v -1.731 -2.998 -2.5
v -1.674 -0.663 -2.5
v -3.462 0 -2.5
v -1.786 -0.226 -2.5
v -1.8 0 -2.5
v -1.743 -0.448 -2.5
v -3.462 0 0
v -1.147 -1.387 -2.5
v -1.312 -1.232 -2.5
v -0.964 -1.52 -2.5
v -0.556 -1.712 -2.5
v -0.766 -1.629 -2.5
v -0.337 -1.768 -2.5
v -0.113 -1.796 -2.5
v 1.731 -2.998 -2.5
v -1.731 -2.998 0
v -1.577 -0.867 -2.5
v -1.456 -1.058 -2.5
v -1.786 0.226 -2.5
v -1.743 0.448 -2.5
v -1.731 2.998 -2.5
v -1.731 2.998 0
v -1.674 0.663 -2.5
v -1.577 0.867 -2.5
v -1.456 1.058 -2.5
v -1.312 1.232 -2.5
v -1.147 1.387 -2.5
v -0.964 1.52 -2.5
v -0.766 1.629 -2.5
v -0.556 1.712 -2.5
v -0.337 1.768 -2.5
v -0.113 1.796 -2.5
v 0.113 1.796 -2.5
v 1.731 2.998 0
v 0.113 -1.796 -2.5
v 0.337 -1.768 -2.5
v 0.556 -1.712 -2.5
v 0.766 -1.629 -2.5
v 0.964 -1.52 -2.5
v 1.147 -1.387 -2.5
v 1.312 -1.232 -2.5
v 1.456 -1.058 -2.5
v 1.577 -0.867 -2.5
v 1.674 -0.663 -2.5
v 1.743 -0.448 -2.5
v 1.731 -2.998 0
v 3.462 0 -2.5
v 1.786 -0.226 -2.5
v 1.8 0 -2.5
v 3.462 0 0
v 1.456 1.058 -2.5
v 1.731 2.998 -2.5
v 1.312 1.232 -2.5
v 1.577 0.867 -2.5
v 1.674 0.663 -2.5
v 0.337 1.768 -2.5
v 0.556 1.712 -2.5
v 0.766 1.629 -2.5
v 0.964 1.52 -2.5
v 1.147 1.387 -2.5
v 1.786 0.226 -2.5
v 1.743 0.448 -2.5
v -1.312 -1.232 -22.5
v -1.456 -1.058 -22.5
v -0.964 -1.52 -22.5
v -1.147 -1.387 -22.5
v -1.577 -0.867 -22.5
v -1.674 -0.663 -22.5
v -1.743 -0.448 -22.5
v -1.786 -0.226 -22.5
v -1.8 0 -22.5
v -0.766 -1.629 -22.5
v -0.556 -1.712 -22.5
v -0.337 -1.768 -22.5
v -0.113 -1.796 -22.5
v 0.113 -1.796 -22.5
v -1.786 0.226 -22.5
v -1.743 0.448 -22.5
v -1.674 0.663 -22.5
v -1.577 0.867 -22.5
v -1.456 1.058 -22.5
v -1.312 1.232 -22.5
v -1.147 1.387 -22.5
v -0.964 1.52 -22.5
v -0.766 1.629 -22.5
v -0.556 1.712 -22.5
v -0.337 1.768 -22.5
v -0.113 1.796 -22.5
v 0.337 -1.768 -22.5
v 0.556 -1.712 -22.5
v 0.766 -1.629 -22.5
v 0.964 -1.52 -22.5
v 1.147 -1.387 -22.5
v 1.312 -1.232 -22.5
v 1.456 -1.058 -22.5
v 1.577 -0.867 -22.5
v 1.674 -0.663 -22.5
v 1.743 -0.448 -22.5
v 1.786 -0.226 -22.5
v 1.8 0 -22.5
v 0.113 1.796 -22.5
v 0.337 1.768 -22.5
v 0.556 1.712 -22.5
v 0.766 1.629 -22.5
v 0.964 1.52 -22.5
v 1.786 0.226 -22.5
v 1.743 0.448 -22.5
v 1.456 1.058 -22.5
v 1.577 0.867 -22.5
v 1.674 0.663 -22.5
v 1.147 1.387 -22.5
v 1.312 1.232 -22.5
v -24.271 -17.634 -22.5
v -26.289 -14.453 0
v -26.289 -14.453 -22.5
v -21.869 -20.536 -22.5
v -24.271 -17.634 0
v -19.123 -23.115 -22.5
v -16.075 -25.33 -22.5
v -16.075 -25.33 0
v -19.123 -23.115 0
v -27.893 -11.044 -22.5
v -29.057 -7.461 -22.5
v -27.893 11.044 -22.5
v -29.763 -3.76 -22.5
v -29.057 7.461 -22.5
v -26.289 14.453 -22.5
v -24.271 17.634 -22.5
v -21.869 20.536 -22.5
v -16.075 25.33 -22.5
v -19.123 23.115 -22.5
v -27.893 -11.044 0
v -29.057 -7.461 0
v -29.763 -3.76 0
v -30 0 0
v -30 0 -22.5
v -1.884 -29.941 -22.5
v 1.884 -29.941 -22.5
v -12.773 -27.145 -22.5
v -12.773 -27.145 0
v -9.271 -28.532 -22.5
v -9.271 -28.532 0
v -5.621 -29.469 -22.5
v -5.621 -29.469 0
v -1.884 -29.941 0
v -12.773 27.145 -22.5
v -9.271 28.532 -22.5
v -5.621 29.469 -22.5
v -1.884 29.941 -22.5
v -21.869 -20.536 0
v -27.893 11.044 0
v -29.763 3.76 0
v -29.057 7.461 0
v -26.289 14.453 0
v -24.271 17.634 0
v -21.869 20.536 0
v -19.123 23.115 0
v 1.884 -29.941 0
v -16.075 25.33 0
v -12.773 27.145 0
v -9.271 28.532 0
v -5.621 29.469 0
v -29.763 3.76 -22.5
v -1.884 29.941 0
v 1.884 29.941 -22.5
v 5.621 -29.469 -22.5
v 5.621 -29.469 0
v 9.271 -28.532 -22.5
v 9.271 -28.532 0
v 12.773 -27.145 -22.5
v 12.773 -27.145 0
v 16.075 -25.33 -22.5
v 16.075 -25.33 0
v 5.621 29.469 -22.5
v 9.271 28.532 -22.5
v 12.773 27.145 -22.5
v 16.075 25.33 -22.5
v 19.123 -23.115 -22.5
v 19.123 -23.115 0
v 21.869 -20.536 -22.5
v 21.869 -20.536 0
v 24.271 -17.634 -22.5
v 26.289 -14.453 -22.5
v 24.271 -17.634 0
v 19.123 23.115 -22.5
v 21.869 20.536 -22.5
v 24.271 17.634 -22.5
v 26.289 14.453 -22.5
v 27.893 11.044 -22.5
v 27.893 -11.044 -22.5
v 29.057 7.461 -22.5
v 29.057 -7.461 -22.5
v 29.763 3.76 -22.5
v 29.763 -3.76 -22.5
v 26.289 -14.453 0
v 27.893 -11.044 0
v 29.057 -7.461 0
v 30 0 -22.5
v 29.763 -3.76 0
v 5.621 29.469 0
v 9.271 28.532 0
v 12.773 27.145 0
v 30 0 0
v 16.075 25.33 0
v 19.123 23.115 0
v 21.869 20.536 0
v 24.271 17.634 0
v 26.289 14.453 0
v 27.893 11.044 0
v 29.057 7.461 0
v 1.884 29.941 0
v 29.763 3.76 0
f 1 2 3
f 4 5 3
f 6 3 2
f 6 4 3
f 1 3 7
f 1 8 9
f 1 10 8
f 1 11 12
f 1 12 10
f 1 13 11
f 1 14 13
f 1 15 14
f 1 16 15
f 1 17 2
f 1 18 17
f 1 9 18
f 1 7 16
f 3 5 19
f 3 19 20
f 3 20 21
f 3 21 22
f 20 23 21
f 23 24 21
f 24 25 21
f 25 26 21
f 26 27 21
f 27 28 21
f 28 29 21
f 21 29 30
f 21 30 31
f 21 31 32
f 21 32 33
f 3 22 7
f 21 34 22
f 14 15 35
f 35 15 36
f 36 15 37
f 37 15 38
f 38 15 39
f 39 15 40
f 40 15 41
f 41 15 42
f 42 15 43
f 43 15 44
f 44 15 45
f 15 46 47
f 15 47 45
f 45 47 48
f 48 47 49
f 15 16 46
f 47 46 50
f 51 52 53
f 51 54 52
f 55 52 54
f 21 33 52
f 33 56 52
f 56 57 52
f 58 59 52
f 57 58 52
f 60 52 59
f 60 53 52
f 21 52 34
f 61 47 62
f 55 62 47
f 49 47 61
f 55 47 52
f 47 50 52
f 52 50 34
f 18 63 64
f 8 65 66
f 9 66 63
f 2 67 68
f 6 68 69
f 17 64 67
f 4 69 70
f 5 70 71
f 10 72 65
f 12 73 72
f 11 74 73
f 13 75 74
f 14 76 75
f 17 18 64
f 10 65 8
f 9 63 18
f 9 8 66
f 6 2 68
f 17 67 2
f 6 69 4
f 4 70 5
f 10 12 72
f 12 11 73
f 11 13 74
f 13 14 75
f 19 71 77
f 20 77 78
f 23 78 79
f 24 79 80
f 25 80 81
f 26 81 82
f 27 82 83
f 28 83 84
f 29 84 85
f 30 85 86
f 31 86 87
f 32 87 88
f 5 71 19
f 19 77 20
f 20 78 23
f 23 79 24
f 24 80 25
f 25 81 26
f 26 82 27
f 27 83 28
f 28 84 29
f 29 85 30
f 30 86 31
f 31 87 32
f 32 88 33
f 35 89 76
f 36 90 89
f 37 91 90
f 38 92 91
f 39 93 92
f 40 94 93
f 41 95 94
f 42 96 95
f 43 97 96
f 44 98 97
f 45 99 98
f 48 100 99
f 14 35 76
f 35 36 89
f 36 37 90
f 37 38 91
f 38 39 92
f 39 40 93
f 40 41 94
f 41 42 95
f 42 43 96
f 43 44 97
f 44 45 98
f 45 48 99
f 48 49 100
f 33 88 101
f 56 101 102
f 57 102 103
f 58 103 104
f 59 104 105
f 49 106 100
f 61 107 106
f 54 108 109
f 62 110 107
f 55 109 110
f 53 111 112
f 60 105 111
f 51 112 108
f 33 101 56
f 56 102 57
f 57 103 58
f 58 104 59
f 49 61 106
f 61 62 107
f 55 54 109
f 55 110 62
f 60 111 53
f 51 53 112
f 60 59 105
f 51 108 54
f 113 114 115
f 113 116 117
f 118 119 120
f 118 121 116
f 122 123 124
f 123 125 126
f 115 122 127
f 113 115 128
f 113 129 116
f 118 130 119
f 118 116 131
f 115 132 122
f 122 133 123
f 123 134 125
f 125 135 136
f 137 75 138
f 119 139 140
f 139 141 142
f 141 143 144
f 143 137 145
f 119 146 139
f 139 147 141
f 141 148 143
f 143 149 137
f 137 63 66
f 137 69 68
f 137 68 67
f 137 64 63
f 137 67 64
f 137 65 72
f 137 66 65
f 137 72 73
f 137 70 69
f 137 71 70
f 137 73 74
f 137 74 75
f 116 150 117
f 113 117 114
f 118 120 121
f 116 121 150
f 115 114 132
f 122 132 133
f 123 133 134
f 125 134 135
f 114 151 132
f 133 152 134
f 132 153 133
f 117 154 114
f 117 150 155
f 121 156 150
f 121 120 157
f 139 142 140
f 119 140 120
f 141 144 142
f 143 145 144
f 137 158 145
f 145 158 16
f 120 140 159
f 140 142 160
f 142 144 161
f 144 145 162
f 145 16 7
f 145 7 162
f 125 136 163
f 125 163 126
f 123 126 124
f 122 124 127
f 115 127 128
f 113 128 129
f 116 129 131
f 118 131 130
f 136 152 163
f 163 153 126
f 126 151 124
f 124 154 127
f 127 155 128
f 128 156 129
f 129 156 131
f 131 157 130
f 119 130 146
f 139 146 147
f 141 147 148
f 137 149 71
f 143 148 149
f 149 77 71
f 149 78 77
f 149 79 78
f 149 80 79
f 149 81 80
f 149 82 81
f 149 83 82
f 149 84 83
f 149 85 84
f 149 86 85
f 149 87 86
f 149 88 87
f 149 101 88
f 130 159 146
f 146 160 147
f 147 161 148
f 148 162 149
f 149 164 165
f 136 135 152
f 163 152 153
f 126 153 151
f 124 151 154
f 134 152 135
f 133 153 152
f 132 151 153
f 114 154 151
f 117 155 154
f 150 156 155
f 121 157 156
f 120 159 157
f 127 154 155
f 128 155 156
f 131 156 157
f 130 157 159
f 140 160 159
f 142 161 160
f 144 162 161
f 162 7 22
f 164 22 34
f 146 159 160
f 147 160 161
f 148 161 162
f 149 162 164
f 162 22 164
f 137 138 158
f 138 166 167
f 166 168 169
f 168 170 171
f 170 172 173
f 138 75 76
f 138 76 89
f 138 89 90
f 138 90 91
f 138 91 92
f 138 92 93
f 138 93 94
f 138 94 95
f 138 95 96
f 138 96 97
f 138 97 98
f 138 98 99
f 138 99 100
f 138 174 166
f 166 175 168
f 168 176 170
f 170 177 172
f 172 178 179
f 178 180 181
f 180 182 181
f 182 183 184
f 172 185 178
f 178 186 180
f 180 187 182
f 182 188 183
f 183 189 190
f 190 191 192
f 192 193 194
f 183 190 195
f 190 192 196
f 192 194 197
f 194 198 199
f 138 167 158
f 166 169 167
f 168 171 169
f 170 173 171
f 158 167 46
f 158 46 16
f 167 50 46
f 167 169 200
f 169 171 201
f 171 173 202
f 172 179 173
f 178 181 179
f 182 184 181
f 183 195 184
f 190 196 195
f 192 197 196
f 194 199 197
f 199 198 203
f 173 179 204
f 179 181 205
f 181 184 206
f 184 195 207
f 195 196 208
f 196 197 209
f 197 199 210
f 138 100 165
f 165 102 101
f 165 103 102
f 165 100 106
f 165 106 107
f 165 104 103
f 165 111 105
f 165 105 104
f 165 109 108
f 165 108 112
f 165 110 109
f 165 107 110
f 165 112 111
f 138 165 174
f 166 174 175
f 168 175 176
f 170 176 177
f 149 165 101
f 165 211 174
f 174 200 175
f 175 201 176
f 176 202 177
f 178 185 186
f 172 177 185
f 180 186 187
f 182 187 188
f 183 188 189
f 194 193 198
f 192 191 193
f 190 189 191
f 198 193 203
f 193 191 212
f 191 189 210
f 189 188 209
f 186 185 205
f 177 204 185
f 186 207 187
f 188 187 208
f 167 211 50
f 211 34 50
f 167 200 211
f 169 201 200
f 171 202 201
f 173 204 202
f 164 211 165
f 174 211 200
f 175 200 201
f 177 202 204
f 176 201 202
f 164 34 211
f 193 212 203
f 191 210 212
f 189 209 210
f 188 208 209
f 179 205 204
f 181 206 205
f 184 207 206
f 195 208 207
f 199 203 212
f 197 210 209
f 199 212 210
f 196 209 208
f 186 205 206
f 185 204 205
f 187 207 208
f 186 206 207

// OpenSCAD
$fn = 50;


difference() {
	union() {
		translate(v = [0, 0, -22.5000000000]) {
			cylinder(h = 22.5000000000, r = 30.0000000000);
		}
	}
	union() {
		translate(v = [0, 0, 0]) {
			rotate(a = [0, 0, 0]) {
				difference() {
					union() {
						translate(v = [0, 0, -2.5000000000]) {
							linear_extrude(height = 2.5000000000) {
								polygon(points = [[3.4620000000, 0.0000000000], [1.7310000000, 2.9981799479], [-1.7310000000, 2.9981799479], [-3.4620000000, 0.0000000000], [-1.7310000000, -2.9981799479], [1.7310000000, -2.9981799479]]);
							}
						}
					}
					union();
				}
			}
		}
		#translate(v = [0, 0, -100.0000000000]) {
			cylinder(h = 200, r = 1.8000000000);
		}
	}
}
